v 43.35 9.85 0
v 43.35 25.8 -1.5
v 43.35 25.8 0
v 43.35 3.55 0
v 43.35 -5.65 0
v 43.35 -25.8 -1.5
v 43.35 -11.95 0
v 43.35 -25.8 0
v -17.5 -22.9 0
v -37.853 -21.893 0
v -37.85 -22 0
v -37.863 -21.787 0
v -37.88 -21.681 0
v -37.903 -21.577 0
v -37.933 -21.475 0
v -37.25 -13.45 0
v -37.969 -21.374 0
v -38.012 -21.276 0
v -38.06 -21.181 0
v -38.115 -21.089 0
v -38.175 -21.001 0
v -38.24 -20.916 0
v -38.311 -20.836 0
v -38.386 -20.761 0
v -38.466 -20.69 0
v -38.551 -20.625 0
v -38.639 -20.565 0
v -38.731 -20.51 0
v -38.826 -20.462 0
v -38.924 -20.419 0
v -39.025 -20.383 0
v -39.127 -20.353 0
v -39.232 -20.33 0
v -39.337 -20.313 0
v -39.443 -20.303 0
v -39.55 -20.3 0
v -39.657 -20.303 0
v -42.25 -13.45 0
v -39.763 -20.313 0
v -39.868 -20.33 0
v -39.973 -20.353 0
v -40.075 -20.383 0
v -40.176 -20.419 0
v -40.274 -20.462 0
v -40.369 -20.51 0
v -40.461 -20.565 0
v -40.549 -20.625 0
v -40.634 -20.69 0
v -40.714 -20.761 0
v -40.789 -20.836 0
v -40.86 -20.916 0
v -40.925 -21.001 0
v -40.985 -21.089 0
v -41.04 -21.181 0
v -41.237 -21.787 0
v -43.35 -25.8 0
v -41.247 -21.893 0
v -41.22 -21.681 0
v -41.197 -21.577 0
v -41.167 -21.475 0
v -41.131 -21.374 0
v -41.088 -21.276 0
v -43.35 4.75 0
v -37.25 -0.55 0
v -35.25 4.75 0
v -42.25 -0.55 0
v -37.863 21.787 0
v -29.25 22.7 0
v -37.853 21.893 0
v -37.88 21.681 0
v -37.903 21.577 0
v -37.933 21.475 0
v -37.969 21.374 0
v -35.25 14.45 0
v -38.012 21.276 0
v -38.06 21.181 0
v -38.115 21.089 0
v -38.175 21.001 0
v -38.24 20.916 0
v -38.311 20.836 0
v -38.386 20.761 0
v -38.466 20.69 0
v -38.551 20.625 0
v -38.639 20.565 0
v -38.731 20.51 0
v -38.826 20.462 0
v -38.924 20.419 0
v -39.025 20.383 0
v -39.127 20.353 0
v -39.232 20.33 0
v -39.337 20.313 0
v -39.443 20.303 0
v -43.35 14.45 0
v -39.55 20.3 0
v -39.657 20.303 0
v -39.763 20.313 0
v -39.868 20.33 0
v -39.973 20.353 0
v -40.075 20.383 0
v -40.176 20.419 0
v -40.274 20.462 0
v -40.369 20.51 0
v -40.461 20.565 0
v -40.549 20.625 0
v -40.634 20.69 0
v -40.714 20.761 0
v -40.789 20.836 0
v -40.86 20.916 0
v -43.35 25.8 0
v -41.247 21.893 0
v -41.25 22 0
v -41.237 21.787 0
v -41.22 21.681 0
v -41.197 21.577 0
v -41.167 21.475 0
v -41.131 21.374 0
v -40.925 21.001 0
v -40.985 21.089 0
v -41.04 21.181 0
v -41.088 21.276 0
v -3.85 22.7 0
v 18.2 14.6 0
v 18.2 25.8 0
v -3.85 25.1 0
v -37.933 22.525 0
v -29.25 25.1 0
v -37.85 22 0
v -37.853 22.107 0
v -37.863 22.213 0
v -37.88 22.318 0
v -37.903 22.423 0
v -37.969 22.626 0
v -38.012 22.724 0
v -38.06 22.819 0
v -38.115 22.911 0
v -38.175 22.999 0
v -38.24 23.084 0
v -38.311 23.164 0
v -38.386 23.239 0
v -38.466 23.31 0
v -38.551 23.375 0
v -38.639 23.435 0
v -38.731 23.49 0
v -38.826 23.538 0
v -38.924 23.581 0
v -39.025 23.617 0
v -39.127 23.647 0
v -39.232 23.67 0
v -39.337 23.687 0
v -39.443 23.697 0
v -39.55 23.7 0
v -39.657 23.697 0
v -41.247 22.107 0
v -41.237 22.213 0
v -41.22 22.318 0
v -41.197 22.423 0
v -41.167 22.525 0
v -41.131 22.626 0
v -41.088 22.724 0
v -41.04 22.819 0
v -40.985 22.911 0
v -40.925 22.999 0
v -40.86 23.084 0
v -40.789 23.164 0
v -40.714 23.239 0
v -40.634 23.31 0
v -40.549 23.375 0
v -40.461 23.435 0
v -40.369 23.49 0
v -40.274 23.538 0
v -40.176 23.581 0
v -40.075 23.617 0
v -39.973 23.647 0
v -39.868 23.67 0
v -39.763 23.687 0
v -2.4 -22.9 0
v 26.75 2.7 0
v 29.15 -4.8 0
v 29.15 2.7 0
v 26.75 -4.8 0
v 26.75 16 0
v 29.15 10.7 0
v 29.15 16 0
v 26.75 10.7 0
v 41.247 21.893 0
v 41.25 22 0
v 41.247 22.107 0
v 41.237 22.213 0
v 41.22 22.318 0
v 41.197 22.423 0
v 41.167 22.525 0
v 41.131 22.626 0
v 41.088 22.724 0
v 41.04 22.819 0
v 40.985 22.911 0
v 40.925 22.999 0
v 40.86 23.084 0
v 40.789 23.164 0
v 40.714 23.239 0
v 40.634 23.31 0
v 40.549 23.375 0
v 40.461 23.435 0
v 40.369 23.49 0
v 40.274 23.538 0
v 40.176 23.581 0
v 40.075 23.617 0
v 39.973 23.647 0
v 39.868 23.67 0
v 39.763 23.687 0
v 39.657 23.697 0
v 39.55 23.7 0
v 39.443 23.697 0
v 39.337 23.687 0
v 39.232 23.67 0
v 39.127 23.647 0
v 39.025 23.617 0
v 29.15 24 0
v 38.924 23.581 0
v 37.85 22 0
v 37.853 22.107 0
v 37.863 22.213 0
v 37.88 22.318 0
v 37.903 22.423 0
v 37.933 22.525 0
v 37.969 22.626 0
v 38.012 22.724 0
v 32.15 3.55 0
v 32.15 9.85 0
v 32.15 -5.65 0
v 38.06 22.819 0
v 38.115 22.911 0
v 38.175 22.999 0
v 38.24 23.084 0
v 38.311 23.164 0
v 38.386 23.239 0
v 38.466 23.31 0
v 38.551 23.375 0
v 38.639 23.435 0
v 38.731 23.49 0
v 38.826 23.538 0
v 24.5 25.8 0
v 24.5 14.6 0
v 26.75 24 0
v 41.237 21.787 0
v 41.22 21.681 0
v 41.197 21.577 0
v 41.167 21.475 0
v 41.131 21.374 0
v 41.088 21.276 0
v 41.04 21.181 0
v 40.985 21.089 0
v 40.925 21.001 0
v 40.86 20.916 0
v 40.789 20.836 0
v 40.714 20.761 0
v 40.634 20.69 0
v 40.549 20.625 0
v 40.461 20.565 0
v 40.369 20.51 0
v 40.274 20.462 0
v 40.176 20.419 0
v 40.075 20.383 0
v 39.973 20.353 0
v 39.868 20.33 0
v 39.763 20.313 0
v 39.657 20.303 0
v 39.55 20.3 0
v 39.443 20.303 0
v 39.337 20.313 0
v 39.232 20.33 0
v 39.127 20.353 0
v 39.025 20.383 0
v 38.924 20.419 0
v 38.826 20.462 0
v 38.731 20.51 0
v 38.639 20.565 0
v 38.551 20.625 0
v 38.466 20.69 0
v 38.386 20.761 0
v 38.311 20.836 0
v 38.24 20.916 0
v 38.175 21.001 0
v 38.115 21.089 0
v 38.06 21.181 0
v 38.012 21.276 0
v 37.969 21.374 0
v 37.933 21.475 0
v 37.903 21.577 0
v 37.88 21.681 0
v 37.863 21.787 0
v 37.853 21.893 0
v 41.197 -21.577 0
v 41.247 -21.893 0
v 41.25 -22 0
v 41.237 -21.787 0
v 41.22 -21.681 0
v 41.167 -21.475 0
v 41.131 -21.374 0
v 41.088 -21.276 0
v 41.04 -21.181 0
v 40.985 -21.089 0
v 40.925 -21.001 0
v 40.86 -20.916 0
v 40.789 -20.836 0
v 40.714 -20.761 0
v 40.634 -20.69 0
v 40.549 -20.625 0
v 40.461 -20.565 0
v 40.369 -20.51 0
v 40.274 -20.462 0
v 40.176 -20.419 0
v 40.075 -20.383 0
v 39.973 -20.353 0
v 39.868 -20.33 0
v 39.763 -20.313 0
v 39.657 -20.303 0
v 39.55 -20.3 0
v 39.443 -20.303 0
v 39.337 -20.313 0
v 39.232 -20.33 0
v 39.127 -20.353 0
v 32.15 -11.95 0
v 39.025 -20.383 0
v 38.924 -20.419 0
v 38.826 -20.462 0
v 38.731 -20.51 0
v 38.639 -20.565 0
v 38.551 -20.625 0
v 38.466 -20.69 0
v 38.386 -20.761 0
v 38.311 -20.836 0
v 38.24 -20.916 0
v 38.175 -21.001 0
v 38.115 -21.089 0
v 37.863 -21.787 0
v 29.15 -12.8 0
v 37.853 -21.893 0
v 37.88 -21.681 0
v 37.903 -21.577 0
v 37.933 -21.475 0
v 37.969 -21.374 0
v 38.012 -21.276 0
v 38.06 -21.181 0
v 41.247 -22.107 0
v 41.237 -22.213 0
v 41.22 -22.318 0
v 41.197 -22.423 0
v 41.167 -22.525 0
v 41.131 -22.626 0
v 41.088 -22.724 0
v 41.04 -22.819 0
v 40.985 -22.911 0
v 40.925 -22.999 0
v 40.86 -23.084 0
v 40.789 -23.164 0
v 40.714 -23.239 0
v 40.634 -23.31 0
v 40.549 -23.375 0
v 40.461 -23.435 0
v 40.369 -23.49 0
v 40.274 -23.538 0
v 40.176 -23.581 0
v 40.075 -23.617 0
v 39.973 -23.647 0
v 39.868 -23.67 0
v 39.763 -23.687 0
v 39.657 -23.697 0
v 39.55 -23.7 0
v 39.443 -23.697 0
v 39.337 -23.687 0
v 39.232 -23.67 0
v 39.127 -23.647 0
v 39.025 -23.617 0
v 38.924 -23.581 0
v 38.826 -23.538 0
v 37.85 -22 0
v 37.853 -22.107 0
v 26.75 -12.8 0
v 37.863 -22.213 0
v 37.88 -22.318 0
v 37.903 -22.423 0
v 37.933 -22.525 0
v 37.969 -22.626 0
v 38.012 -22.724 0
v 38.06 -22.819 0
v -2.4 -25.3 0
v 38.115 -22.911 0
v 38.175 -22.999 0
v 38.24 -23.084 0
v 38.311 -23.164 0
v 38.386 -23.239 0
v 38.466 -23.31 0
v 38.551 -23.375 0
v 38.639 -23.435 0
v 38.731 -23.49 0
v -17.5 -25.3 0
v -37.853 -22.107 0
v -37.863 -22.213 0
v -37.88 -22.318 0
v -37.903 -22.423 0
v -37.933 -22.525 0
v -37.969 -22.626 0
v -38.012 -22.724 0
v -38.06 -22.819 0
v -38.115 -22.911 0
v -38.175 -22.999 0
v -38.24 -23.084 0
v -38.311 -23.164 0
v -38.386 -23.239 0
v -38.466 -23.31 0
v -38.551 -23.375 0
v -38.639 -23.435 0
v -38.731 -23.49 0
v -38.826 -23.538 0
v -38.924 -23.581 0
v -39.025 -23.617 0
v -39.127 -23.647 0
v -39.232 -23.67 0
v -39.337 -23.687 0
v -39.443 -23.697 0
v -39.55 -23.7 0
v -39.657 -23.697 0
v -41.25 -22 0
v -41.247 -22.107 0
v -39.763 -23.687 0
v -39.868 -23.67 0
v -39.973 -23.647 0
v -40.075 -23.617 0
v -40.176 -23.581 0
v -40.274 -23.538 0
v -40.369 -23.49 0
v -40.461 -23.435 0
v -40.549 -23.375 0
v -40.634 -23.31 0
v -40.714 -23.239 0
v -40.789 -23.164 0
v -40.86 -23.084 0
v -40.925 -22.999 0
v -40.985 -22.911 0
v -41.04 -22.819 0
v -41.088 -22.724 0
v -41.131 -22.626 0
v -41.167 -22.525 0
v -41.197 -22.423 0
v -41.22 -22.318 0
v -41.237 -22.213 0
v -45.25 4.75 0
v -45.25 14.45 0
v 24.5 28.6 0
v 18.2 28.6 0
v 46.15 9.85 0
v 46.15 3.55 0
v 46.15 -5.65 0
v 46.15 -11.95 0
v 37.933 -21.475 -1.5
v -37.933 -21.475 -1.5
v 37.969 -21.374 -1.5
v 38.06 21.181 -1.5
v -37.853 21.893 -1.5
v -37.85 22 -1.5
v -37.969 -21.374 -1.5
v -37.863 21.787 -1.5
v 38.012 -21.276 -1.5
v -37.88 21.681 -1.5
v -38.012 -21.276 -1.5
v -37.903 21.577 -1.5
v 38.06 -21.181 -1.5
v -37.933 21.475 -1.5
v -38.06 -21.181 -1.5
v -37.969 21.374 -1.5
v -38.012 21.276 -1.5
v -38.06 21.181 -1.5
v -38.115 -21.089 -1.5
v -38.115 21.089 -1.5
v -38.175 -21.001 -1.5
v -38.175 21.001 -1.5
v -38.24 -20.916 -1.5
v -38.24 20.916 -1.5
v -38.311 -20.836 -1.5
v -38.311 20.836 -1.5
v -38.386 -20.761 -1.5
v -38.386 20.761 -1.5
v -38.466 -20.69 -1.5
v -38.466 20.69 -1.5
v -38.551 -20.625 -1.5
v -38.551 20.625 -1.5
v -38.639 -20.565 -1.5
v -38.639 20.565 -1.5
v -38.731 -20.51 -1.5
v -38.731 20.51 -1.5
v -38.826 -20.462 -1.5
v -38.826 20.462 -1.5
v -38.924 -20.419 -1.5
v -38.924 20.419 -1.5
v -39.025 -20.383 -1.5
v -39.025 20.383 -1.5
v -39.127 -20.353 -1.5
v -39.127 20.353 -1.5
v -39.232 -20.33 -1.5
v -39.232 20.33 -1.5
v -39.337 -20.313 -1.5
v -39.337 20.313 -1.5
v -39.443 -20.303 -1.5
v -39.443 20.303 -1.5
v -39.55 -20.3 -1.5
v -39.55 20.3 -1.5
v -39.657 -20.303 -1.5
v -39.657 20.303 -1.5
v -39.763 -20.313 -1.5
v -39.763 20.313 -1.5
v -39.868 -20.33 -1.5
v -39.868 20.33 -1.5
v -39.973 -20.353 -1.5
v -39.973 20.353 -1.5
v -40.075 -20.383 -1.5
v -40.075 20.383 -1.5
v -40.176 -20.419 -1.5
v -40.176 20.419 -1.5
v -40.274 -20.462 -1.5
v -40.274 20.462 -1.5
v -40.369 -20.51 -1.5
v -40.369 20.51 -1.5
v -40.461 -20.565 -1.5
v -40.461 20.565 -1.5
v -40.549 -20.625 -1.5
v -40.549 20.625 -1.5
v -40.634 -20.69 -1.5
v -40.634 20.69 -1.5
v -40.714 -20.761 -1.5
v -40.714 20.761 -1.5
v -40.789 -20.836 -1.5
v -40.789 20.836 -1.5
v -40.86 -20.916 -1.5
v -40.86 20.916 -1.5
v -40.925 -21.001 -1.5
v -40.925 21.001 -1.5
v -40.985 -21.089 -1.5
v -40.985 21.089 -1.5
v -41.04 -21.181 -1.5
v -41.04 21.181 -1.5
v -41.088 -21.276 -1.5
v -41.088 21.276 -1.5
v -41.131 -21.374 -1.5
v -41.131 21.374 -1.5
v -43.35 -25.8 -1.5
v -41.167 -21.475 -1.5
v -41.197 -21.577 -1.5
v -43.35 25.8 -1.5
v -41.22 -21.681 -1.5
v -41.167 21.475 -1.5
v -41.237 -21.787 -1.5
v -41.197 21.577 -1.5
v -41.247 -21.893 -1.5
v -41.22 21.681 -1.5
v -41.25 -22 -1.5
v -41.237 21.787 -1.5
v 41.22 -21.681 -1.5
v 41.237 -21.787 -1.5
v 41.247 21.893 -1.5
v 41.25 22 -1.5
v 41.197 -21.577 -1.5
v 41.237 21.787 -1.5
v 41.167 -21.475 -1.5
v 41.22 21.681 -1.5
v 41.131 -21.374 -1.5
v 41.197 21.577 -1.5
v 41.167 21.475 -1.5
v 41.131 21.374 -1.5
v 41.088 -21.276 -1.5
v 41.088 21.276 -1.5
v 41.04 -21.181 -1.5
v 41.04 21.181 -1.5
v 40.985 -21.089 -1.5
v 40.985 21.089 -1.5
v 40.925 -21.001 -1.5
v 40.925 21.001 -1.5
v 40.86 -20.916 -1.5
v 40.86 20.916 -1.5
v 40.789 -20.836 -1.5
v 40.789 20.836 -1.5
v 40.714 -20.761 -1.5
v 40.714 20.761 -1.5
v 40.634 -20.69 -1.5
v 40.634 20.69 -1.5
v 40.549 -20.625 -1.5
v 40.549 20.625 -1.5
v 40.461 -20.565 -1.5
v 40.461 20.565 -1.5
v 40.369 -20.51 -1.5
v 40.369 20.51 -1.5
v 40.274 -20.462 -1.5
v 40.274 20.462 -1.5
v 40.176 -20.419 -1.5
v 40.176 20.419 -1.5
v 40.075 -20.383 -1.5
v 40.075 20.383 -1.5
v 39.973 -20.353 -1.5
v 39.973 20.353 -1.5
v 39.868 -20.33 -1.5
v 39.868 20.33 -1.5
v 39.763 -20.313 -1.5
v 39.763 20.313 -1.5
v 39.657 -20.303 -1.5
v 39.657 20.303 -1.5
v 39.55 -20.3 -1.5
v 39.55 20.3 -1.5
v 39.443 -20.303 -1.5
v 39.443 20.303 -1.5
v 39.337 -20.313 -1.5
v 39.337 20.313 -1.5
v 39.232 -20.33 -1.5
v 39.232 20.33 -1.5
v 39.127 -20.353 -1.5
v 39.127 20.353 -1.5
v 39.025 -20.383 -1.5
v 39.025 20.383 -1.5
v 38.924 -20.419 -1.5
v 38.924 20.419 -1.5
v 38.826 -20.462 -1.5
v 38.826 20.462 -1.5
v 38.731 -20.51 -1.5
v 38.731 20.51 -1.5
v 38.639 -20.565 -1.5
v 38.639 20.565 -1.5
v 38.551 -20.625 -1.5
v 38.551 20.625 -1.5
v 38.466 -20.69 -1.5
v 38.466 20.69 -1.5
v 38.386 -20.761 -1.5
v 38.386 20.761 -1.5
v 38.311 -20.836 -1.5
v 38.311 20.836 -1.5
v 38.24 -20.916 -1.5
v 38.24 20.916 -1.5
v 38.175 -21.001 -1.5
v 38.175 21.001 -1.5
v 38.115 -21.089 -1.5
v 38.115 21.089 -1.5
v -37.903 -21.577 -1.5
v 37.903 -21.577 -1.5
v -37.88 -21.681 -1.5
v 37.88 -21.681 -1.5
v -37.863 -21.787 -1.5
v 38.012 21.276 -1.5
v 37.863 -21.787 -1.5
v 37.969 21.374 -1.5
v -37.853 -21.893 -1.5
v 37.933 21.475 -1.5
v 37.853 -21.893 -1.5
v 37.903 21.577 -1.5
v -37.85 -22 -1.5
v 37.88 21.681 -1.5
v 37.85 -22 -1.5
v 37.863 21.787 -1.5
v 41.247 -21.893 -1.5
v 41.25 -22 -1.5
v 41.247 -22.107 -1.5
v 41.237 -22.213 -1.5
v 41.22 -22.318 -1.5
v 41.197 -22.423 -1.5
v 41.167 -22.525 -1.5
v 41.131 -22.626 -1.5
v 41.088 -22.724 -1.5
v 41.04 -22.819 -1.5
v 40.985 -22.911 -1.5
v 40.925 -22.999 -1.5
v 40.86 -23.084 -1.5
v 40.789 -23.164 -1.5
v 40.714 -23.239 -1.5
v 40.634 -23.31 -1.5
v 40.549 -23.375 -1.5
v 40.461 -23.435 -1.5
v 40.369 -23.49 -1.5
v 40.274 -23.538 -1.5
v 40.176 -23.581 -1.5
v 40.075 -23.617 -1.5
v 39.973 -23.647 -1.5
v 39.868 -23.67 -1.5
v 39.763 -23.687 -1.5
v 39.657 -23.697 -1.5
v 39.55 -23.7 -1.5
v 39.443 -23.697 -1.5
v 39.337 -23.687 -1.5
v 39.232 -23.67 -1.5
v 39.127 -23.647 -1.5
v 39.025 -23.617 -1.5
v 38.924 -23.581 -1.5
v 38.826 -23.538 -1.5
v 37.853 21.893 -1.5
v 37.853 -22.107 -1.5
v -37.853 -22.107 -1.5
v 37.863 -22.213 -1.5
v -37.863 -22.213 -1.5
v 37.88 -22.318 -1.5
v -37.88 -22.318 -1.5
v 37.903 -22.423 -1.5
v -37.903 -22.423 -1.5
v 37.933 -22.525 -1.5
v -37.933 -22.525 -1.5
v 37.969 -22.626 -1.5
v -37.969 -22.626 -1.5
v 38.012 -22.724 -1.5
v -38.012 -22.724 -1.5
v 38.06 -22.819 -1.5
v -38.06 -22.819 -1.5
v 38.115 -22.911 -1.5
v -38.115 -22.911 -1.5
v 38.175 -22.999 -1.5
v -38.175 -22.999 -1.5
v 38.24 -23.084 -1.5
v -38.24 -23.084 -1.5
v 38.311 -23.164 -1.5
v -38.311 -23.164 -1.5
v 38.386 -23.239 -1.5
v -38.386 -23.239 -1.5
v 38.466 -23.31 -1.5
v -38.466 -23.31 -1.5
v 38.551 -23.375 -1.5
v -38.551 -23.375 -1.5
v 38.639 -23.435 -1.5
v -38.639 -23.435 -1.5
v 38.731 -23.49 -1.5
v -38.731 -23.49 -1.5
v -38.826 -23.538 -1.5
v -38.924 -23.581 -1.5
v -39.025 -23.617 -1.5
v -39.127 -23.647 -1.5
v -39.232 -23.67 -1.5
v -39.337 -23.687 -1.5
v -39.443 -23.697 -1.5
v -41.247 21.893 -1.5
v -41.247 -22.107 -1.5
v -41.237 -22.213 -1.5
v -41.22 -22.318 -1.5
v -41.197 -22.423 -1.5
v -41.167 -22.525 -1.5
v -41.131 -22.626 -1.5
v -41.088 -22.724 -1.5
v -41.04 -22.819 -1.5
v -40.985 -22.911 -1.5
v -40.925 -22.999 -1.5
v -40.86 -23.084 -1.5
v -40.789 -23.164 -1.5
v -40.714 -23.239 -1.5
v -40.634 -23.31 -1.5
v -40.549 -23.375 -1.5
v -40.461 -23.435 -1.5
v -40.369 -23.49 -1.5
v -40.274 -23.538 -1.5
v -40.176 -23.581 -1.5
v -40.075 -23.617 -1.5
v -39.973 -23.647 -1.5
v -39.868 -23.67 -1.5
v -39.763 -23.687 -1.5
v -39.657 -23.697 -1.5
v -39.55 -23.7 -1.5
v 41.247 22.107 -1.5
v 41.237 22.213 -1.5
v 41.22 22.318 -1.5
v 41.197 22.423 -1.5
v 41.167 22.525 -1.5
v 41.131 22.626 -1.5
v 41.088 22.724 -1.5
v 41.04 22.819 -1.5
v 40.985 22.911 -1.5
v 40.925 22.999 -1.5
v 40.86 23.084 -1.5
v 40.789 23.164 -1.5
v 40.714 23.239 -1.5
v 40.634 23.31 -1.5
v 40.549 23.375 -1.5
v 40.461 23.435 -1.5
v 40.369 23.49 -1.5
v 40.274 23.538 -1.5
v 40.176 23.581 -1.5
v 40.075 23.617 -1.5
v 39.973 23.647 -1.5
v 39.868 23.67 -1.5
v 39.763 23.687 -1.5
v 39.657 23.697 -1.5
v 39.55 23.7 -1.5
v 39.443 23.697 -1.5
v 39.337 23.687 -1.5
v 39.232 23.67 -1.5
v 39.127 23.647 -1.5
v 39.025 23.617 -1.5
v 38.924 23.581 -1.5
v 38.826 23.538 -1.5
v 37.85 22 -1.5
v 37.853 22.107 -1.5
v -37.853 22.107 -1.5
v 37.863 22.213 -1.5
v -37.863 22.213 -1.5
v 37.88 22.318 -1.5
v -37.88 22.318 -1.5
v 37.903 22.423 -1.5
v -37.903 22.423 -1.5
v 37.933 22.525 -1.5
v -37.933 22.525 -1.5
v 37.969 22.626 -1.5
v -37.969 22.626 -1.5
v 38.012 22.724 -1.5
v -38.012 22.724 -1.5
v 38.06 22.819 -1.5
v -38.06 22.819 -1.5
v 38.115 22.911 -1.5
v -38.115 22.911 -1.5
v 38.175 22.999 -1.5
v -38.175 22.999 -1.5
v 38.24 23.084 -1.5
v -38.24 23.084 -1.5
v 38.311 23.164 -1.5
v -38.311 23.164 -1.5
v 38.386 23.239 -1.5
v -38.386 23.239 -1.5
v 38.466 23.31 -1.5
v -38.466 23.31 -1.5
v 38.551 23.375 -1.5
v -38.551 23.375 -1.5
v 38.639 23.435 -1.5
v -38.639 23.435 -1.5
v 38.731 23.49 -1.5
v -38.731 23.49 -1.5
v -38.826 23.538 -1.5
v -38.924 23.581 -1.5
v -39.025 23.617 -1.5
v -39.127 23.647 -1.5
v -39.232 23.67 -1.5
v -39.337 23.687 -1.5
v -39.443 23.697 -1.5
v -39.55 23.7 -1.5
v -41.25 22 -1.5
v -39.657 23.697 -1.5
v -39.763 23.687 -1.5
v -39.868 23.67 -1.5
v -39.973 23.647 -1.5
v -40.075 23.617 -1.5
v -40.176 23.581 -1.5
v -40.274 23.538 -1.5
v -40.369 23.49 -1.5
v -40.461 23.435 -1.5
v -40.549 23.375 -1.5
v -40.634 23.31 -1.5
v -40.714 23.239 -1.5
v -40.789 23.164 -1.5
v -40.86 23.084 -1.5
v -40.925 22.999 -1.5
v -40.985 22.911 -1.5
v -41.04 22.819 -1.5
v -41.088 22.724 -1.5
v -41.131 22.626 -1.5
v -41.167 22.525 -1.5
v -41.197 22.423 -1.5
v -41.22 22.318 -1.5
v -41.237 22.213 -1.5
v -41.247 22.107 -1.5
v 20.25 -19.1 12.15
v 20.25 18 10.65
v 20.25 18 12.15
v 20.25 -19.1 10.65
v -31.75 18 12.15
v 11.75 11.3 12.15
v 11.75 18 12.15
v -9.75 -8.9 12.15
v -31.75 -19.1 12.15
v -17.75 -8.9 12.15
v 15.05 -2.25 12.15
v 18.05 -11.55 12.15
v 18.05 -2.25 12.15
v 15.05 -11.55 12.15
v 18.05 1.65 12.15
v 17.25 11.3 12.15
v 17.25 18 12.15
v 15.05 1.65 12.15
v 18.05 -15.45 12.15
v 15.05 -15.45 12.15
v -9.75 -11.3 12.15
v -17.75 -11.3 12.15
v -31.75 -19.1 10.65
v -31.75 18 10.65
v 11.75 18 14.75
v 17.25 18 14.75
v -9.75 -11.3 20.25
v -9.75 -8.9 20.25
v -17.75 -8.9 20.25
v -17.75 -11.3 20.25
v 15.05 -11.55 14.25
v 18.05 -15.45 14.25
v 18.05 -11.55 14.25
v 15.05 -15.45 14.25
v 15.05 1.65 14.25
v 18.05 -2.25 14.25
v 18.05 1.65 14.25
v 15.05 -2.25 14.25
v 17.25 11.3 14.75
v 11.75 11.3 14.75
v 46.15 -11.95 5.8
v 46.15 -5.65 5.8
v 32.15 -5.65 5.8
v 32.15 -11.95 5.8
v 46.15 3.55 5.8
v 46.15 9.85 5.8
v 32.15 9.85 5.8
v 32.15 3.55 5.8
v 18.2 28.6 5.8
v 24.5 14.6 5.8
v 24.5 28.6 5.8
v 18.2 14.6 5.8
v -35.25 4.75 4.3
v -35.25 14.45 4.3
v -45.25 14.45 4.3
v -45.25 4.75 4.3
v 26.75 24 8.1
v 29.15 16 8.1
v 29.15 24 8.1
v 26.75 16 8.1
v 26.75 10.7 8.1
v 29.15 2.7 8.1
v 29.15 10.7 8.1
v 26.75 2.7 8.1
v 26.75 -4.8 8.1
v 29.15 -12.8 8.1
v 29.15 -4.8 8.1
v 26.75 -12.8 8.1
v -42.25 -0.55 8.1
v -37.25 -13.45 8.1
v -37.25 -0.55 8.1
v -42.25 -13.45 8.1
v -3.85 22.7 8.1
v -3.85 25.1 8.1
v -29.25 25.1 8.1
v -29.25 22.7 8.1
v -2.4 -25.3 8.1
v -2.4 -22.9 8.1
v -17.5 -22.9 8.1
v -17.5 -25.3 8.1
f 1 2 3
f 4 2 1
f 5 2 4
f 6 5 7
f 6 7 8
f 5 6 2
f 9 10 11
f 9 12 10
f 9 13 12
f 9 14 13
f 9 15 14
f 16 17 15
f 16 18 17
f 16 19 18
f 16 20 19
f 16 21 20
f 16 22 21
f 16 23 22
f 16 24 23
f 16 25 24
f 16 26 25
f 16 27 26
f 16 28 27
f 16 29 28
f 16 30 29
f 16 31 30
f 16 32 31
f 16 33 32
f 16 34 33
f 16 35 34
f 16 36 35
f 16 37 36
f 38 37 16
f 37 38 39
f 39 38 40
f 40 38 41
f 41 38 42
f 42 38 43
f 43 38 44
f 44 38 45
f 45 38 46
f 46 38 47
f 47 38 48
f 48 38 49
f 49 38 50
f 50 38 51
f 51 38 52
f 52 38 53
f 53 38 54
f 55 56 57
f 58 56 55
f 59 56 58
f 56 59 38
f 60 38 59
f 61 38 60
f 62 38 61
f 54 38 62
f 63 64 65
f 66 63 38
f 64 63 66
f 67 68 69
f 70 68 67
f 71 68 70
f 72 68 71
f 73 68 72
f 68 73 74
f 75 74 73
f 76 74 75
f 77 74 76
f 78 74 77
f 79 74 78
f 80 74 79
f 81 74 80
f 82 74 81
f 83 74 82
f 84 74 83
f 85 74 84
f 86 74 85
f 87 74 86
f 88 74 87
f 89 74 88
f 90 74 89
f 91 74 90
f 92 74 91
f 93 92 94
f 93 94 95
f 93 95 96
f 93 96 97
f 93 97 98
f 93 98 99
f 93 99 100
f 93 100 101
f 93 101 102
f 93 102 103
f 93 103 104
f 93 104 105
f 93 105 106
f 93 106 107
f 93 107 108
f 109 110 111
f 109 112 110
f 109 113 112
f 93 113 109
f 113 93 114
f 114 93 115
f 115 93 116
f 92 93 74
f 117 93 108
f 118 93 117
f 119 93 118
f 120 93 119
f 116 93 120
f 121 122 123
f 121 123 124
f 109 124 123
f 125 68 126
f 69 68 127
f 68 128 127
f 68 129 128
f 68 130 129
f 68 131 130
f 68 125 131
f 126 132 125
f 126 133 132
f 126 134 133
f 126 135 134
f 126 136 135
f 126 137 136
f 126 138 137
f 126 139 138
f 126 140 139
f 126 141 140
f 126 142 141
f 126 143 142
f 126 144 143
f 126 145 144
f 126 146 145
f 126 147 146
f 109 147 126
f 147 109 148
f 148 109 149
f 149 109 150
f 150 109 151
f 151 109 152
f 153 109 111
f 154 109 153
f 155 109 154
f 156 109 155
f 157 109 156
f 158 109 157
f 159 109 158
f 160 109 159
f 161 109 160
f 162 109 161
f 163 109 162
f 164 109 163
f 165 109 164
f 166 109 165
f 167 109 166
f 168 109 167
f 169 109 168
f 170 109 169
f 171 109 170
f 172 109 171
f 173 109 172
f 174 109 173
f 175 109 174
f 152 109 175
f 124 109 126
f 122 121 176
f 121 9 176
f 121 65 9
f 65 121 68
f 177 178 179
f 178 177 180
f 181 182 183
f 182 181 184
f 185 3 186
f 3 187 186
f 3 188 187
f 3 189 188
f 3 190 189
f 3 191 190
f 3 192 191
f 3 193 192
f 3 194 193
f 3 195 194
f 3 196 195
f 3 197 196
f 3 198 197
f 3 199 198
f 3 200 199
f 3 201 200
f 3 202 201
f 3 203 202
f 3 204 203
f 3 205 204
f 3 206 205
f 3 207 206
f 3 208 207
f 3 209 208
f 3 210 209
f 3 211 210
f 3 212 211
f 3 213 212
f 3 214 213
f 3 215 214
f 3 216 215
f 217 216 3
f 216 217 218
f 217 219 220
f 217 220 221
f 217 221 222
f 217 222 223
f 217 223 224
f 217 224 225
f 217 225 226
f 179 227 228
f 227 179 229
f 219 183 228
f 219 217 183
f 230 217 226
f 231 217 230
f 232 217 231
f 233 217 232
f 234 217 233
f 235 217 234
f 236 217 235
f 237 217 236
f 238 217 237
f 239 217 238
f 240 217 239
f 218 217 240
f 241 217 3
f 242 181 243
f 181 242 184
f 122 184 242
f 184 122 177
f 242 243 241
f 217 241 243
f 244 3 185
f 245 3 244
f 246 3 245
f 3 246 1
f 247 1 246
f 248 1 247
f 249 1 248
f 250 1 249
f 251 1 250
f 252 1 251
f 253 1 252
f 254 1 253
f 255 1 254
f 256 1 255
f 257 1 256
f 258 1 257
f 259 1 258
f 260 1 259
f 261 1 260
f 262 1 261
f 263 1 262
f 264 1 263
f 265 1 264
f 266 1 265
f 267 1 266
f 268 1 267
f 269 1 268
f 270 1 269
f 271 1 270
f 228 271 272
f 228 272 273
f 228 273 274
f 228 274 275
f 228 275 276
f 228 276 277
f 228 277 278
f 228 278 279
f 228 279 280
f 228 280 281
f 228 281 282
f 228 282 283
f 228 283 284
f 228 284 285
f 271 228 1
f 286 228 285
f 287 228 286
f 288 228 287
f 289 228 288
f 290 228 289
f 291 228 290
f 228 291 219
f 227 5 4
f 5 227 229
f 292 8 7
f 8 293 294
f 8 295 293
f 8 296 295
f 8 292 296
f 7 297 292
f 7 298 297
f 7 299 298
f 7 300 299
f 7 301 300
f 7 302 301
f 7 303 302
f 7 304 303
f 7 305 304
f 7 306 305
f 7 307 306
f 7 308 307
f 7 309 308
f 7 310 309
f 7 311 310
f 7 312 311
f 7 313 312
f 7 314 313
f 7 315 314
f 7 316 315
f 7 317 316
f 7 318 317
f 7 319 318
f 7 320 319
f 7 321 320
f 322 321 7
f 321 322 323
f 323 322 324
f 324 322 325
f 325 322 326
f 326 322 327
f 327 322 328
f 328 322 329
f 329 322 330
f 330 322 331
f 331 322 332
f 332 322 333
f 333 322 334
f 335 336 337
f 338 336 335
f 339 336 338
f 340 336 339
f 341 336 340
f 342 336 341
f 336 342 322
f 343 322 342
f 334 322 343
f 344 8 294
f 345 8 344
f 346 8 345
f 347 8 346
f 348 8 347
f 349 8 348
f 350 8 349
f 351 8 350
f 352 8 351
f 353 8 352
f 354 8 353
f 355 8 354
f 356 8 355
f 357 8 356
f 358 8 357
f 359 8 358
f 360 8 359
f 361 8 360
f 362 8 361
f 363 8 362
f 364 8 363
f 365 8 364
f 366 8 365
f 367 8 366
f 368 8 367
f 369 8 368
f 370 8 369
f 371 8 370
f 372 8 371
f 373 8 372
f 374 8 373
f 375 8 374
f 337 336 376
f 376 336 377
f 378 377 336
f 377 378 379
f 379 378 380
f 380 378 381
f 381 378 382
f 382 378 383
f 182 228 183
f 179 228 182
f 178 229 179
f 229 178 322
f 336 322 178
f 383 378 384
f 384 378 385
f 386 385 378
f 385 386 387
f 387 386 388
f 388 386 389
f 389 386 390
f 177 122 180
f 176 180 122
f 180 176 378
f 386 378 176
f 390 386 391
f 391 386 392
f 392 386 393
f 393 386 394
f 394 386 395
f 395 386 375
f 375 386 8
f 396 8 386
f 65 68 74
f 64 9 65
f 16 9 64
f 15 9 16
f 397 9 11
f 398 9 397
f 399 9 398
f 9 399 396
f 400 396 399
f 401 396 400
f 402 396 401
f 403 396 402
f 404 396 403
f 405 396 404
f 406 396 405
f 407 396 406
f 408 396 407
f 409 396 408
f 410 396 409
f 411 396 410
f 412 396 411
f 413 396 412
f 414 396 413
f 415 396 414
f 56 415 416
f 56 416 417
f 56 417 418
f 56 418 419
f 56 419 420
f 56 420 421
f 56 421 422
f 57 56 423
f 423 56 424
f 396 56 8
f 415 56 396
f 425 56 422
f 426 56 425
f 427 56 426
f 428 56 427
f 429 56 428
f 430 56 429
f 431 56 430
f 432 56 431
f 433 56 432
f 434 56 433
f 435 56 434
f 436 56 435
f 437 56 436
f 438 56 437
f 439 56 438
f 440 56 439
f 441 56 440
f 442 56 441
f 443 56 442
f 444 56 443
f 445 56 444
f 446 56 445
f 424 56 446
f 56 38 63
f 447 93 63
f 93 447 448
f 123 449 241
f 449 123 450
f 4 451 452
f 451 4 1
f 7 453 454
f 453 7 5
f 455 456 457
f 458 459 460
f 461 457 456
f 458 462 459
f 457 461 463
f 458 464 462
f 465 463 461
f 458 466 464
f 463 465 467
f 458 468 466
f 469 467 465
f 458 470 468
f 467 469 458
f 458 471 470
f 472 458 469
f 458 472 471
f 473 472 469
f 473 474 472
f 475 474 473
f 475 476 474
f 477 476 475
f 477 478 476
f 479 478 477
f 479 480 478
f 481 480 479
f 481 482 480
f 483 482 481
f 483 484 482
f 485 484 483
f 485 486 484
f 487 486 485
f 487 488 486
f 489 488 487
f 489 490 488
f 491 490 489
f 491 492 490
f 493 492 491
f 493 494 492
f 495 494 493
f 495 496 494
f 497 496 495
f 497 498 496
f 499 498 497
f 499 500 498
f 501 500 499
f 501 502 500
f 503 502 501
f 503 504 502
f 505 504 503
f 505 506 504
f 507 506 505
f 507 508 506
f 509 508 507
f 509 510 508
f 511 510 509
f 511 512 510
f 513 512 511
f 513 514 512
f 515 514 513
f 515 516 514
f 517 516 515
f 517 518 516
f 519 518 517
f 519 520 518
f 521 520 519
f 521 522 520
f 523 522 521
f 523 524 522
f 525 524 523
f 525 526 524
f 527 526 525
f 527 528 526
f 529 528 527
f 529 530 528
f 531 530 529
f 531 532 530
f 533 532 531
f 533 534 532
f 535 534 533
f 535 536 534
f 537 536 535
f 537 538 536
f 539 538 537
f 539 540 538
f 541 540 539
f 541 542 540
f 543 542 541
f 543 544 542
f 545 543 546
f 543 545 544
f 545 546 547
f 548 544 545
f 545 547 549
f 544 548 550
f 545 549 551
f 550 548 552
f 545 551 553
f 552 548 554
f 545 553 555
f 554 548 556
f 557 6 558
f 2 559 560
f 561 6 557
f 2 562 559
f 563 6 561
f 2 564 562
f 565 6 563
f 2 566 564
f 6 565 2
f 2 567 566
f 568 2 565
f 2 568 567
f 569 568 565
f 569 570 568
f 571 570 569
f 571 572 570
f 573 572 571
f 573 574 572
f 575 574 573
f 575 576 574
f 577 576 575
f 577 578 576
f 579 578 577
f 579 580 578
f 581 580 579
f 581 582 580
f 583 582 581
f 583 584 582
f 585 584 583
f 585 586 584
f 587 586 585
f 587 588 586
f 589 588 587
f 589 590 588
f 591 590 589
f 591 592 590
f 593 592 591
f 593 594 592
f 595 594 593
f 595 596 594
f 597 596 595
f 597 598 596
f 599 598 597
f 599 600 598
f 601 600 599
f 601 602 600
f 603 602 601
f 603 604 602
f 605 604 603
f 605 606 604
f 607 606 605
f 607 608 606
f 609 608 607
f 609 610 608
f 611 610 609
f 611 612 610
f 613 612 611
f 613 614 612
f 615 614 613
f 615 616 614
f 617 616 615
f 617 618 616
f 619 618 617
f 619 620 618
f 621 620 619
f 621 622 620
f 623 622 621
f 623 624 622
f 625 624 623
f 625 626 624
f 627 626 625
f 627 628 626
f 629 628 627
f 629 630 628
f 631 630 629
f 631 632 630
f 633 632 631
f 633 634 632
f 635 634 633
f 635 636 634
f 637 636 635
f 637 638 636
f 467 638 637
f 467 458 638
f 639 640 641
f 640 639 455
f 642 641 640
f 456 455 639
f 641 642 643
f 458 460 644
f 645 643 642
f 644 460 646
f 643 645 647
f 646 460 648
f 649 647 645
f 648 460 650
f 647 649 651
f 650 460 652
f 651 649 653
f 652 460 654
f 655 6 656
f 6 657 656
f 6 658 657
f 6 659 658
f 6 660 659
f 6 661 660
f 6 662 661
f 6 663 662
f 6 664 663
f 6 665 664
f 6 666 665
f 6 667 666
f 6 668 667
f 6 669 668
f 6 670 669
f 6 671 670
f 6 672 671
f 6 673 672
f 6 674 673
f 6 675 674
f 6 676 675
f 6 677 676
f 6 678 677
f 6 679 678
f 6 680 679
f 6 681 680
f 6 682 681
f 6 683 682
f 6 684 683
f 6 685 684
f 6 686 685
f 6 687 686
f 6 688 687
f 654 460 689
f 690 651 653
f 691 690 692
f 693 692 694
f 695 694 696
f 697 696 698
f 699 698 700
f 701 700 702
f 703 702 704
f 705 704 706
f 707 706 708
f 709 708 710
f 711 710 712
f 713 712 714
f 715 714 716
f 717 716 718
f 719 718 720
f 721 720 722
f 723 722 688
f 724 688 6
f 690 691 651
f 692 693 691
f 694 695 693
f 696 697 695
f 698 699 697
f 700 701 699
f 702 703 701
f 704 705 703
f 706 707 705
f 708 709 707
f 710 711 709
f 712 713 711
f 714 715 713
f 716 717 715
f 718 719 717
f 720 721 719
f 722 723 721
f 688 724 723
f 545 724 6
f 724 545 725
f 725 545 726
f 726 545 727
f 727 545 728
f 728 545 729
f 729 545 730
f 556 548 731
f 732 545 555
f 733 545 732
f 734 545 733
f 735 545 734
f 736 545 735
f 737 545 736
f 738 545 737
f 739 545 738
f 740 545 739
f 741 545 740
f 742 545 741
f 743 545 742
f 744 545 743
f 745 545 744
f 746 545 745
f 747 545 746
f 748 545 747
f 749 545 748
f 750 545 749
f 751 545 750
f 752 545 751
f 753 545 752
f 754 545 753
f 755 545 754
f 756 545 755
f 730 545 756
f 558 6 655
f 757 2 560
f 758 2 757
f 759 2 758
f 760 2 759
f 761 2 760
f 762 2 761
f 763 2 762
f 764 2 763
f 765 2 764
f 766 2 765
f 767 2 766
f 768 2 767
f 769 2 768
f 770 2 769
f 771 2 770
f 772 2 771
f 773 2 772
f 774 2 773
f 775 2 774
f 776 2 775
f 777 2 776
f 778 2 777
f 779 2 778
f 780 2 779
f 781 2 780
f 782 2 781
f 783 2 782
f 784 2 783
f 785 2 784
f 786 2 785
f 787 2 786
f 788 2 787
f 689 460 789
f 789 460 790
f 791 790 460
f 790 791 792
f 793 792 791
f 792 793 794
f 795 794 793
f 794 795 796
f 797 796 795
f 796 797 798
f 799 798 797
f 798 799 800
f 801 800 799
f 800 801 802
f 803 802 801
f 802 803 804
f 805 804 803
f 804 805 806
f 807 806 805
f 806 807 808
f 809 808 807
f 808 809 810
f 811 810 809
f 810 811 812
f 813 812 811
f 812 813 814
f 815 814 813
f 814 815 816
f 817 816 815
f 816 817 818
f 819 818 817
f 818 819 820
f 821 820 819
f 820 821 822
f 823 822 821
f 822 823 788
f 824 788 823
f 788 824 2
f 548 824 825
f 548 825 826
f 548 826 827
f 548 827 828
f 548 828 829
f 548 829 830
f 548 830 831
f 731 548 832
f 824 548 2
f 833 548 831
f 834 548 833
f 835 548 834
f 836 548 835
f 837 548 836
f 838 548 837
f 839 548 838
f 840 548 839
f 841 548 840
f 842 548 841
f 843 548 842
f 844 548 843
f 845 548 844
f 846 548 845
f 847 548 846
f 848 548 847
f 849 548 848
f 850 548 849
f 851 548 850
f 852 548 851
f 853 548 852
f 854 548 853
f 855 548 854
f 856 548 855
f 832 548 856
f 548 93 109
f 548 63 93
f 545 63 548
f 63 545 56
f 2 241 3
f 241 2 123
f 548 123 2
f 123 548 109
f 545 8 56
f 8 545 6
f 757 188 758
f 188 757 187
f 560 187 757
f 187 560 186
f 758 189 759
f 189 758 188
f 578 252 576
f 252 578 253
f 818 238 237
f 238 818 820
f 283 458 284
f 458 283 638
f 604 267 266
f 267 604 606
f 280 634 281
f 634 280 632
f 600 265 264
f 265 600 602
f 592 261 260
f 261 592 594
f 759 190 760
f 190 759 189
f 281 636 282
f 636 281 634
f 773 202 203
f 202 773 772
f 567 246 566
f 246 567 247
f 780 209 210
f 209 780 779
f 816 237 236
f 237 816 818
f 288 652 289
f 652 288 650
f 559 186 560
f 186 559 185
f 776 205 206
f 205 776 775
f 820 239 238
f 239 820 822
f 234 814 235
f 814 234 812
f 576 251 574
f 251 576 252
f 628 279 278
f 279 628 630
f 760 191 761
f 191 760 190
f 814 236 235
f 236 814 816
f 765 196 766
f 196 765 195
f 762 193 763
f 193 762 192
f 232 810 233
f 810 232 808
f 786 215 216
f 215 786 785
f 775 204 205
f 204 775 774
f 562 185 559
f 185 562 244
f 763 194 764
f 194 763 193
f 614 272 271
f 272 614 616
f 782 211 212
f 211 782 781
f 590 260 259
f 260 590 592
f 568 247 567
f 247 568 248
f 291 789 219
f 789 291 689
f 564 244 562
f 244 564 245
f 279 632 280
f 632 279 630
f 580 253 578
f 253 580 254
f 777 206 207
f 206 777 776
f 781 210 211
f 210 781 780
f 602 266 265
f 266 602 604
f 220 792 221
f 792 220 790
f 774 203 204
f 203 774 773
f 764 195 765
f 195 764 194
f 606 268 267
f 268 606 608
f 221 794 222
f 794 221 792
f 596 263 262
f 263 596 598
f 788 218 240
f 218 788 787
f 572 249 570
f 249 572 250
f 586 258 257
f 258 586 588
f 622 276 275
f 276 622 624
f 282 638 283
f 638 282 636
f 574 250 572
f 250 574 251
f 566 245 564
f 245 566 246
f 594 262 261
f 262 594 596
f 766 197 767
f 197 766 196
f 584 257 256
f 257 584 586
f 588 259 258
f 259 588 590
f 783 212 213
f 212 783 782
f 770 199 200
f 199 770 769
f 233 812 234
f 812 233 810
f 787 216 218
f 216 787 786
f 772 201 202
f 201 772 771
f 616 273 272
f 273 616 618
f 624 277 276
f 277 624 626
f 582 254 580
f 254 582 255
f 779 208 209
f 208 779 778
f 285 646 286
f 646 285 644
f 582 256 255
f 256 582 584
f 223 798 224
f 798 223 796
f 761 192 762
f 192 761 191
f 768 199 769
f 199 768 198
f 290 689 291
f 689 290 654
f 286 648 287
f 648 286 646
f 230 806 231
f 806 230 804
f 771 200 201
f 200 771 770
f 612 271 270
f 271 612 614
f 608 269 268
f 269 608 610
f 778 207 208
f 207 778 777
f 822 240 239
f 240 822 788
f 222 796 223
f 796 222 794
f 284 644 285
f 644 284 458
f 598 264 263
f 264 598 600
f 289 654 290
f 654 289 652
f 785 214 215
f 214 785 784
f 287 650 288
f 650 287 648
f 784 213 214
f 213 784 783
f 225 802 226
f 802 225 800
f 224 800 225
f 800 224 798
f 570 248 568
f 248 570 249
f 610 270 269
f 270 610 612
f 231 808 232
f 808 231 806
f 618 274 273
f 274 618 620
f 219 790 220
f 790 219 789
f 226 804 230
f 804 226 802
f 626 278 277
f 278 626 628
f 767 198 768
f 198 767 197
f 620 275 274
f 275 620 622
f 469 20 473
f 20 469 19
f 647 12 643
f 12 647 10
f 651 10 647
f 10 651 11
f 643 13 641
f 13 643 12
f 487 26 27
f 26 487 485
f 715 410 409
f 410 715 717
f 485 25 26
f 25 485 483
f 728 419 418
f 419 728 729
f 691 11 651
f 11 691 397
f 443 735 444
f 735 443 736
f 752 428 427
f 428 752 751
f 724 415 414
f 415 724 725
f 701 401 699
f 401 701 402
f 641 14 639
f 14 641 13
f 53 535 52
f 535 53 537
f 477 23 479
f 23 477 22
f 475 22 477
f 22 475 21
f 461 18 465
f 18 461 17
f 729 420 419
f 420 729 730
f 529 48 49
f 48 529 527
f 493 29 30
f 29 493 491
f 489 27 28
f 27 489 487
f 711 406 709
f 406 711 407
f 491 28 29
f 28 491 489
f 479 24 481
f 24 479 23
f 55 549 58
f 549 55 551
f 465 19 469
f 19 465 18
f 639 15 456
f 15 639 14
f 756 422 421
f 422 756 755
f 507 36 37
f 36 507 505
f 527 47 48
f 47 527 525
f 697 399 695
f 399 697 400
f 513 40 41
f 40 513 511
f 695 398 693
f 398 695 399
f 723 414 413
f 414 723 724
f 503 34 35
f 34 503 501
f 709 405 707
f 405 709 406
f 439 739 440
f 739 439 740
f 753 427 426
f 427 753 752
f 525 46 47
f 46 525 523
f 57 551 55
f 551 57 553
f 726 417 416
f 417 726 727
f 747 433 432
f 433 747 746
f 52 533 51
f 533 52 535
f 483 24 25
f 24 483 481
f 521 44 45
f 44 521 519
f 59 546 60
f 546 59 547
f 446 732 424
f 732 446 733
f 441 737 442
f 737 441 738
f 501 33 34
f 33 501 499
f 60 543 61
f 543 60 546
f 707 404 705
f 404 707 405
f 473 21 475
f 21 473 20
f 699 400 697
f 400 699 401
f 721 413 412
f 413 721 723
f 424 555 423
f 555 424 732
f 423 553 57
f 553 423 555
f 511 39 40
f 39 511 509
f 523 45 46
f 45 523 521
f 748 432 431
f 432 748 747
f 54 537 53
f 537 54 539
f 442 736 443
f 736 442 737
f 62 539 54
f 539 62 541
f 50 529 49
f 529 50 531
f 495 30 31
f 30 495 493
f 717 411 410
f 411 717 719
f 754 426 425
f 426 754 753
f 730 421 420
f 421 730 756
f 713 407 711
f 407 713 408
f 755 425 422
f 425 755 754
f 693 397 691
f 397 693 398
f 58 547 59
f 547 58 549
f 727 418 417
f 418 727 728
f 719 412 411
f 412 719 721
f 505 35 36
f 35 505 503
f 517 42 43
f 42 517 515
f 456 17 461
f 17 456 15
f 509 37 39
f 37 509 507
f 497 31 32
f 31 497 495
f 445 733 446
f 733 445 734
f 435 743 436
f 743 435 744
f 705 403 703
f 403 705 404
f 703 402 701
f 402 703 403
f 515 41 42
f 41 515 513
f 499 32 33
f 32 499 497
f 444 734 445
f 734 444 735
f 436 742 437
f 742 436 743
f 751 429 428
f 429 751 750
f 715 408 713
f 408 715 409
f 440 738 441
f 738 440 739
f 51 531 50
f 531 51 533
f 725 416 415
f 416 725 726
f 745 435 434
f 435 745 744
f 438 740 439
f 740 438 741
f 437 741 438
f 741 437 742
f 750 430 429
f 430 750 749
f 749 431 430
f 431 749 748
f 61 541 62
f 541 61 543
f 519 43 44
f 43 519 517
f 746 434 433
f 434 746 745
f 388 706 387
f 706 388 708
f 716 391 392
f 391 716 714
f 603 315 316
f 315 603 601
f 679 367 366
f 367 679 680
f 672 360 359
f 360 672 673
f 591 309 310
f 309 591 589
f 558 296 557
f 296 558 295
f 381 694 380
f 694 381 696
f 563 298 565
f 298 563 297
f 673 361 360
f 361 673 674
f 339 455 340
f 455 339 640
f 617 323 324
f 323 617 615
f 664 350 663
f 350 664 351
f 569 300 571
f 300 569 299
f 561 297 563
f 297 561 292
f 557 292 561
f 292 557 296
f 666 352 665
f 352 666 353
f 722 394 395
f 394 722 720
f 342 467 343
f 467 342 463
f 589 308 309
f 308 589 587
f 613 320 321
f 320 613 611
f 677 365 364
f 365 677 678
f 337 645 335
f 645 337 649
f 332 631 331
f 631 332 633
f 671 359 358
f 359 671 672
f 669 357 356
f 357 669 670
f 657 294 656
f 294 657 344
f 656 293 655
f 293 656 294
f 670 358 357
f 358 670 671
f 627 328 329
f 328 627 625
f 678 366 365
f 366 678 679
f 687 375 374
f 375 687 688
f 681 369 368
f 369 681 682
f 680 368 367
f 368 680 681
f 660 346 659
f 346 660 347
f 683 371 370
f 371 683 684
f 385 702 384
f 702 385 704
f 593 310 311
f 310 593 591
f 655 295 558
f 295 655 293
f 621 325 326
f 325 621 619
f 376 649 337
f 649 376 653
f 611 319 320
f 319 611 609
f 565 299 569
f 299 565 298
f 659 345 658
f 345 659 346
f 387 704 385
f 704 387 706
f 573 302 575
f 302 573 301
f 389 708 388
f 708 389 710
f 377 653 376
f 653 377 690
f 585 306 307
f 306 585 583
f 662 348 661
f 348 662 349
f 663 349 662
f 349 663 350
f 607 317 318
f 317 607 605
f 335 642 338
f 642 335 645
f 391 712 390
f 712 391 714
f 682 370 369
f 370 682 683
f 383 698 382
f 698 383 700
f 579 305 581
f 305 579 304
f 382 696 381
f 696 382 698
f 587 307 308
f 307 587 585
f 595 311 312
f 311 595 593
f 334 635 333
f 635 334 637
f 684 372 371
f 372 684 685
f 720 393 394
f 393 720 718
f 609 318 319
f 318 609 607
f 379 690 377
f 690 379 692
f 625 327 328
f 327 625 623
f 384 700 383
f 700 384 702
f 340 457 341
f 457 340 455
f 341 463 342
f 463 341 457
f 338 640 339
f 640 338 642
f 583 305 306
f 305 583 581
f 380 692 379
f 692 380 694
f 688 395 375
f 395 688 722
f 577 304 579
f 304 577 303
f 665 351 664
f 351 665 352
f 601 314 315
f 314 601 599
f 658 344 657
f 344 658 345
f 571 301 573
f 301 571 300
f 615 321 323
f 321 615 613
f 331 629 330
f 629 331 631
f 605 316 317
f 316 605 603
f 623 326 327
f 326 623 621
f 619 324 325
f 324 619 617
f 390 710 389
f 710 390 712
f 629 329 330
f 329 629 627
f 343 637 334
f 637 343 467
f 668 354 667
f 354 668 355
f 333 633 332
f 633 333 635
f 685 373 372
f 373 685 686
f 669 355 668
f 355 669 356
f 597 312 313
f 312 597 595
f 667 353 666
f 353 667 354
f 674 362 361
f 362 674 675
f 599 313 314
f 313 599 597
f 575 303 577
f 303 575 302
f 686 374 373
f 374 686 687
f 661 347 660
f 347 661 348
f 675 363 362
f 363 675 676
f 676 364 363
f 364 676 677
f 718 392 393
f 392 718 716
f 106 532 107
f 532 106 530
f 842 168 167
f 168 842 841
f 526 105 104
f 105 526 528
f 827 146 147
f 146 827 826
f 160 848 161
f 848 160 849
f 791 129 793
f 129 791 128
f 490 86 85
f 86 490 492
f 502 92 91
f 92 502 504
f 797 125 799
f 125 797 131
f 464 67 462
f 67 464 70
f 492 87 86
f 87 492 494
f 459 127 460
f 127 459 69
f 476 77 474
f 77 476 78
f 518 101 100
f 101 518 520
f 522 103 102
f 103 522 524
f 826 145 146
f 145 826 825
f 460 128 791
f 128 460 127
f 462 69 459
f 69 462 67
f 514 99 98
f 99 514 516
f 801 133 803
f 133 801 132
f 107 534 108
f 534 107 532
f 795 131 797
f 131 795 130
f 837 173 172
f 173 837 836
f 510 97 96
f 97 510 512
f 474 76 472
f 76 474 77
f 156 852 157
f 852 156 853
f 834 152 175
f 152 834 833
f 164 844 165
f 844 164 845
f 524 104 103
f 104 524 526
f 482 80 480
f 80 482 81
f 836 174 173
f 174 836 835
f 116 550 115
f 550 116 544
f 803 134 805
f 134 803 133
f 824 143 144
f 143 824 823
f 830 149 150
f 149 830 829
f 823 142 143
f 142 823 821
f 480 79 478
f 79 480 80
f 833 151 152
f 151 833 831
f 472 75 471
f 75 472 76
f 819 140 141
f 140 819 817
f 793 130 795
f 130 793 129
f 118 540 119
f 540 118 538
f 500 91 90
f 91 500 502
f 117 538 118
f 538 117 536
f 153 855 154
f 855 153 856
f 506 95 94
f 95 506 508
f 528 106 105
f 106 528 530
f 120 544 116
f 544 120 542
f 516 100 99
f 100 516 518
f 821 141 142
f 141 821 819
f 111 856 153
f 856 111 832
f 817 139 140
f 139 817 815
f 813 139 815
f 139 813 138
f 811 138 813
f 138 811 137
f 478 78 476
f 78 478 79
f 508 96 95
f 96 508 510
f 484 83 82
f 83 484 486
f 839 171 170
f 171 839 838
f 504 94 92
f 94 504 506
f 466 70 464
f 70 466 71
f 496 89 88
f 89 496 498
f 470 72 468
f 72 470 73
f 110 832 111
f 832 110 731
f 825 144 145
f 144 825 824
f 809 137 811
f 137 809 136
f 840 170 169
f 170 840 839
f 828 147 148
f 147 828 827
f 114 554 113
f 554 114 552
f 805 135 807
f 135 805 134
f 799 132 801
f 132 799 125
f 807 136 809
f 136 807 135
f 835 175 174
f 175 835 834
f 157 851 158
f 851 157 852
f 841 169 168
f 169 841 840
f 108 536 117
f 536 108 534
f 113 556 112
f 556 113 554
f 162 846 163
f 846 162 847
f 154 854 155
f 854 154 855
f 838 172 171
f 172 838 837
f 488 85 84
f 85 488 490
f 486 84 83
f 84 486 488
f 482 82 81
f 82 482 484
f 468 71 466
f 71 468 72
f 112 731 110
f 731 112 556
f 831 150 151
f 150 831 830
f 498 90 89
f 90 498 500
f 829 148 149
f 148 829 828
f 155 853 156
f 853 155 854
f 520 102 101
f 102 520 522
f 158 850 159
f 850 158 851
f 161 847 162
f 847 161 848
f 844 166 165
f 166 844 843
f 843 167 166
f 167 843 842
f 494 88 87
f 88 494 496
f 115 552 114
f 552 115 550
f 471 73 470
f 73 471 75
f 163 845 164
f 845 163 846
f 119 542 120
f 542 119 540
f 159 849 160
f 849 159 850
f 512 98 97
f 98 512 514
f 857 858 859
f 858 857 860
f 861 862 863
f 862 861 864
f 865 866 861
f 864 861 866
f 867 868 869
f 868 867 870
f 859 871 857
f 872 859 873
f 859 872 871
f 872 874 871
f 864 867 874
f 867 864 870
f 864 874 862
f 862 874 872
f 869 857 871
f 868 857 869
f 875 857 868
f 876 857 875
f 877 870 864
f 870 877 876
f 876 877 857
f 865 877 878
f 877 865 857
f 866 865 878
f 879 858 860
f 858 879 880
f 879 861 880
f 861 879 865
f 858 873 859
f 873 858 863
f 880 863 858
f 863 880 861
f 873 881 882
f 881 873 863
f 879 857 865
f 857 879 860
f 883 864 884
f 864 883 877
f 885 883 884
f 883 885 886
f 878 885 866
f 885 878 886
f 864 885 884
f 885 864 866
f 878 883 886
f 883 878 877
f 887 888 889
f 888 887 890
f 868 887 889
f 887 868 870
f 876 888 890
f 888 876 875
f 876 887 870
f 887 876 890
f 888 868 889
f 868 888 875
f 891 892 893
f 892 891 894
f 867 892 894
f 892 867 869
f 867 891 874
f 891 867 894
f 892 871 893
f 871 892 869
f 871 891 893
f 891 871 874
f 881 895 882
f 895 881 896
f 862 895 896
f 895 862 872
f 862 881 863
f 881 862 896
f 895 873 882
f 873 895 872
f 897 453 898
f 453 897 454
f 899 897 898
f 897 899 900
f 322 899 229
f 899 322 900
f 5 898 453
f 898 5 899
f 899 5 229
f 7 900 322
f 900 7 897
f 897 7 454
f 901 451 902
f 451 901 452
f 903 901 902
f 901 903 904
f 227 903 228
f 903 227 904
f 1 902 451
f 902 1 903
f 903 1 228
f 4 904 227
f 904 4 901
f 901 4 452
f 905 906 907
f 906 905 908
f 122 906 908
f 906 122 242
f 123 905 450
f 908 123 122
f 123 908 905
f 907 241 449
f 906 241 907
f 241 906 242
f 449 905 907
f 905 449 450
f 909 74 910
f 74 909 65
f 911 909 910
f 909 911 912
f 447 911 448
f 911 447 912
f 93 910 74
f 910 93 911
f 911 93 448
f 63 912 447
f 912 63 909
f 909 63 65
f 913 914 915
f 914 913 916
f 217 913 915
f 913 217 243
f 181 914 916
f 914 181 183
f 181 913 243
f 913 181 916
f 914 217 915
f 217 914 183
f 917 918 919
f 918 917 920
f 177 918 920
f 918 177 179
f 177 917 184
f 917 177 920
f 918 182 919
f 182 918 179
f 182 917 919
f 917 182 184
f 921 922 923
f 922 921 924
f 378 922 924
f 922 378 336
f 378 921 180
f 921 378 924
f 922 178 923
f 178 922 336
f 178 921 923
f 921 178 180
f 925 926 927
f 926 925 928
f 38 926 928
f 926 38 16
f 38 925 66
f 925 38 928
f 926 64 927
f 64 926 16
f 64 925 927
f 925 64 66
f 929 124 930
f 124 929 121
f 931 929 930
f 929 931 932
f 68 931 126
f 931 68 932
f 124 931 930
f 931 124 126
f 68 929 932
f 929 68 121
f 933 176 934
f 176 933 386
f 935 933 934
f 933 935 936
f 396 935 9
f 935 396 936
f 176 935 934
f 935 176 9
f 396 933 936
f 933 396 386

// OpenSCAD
// file: common.scad
holes_distance_to_border_pcb = 3.8;
holes_diameter = 3.4;
pcb_size = [86.7, 51.6, 1.5 ];
margin_xy = 4;
wall_width = 2;
epsilon = 0.35;

holes_distance_to_border_case_bottom = holes_distance_to_border_pcb + margin_xy;

bottom_box_internal_size = [pcb_size[0] + margin_xy*2,
                            pcb_size[1] + margin_xy*2,
                            6];
                                      
top_box_internal_size = [bottom_box_internal_size[0],
                         bottom_box_internal_size[1],
                         23];
// main file
include <common.scad>;

module mini_momentary_switch(control_components_margin)
{
     size = [3.9, 3, 2.1] + control_components_margin;
     translate([0,
               0,
               size[2]/2])
    cube(size,center=true);
}

module mini_dip_switch_4(control_components_margin)
{
    size = [6.7, 5.5, 2.6] + control_components_margin;
    translate([-size[0]/2,
               size[1]/2,
               size[2]/2])
    cube(size,center=true);
}
    
module header_1x3_pin(control_components_margin)
{
     size = [8, 2.4, 8.1] + control_components_margin;
     translate([0,
               0,
               size[2]/2])
     cube(size,center=true);   
}
module header_2x5_pin(control_components_margin)
{
    size = [12.9, 5, 8.1] + control_components_margin;
    translate([0,
               0,
               size[2]/2])
    cube(size,center=true);
}
module header_1x10_pin(control_components_margin)
{
    size = [25.4, 2.4, 8.1] + control_components_margin;
    translate([0,
               0,
               size[2]/2])
    cube(size,center=true);
}

module header_1x6_pin(control_components_margin)
{
    size = [15.1, 2.4, 8.1] + control_components_margin;
    translate([0,
               0,
               size[2]/2])
    cube(size,center=true);
}
module daughter_pcb(pcb_daugther_size, control_components_margin)
{
    $fn=100;
    union()
    {
        color("springgreen",1)
        translate([pcb_daugther_size[0]/2,
                   -pcb_daugther_size[1]/2,
                   -pcb_daugther_size[2]/2])
        cube(pcb_daugther_size, center=true);
    
        // jp2
        color("black",1)
        translate([18,
                   9 - pcb_daugther_size[1],
                   ])
        header_1x3_pin(control_components_margin);
        
        
        // btn1
        color("grey", 1)
        translate([pcb_daugther_size[0] - 3.7,
                   5.6 - pcb_daugther_size[1],
                   0])
        rotate([0,0,90])
        mini_momentary_switch(control_components_margin);
        
        // btn2
        color("grey", 1)
        translate([pcb_daugther_size[0] - 3.7,
                   18.8 - pcb_daugther_size[1],
                   0])
        rotate([0,0,90])
        mini_momentary_switch(control_components_margin);
        
        
        // sw1
        translate([pcb_daugther_size[0]-3,
                   0,
                   0])
        rotate([0,0,90])
        mini_dip_switch_4(control_components_margin);
    }
}


module pcb(control_components_margin) 
{   
    $fn=100;
    union()
    {
        translate([0,0,-pcb_size[2]/2])
        difference(){
        // main PCB
        color("green",1)
        cube(pcb_size,center=true);
        
        // 4 corner holes
        translate([pcb_size[0]/2 - holes_distance_to_border_pcb,
                   pcb_size[1]/2 - holes_distance_to_border_pcb,
                   0])
        cylinder(h=pcb_size[2], d=holes_diameter, center=true);
        
        translate([holes_distance_to_border_pcb - pcb_size[0]/2,
                   holes_distance_to_border_pcb - pcb_size[1]/2,
                   0])
        cylinder(h=pcb_size[2], d=holes_diameter, center=true);
        
        translate([pcb_size[0]/2 - holes_distance_to_border_pcb,
                   holes_distance_to_border_pcb - pcb_size[1]/2,
                   0])
        cylinder(h=pcb_size[2], d=holes_diameter, center=true);
        
        translate([holes_distance_to_border_pcb - pcb_size[0]/2,
                   pcb_size[1]/2 - holes_distance_to_border_pcb,
                   0])
        cylinder(h=pcb_size[2], d=holes_diameter, center=true);
    }
    
    // add jacks
    jack_size = [14, 6.3, 5.8] + [control_components_margin[2], control_components_margin[0], control_components_margin[1]];
    jack_inner_length = 11.2;
        
    hpout01_jack_distance_to_border = 17;
    hpout23_jack_distance_to_border = 19.1;
    linein01_jack_distance_to_border = 22;
    
    // HP out 0/1
    color("black", 1)
    translate([pcb_size[0]/2 - jack_size[0]/2 + (jack_size[0]-jack_inner_length),
    hpout01_jack_distance_to_border - pcb_size[1]/2,
    jack_size[2]/2])
    cube(jack_size, center=true);
    
    // HP out 2/3
    color("yellow", 1)
    translate([pcb_size[0]/2 - jack_size[0]/2 + (jack_size[0]-jack_inner_length),
    pcb_size[1]/2 - hpout23_jack_distance_to_border,
    jack_size[2]/2])
    cube(jack_size, center=true);
    
    // line in 0/1
    color("hotpink", 1)
    translate([pcb_size[0]/2 - linein01_jack_distance_to_border,
        pcb_size[1]/2 - jack_size[0]/2 + (jack_size[0]-jack_inner_length),
        jack_size[2]/2])
    rotate([0,0,90])
    cube(jack_size, center=true);
   
   // USB-C connector
    usbc_distance_to_border = 16.2;
    usbc_size = [10, 9.7, 4.3] + [control_components_margin[2], control_components_margin[0], control_components_margin[1]];
    
    color("lightgray", 1)
    translate([(usbc_distance_to_border-usbc_size[0] - pcb_size[0])/2,
               pcb_size[1]/2 - usbc_distance_to_border,
              usbc_size[2]/2])
    cube(usbc_size, center=true);
    
    // headers
    j41_3p_center_distance_to_border = [15.4, 5.8];
    j61_3p_center_distance_to_border = [15.4, hpout23_jack_distance_to_border];
    j51_3p_center_distance_to_border = [15.4, pcb_size[1] - hpout01_jack_distance_to_border];
    
    // j41
    color("hotpink", 1)
    translate([pcb_size[0]/2 - j41_3p_center_distance_to_border[0],
               pcb_size[1]/2 - j41_3p_center_distance_to_border[1],
               0])
    rotate([0,0,90])
    header_1x3_pin(control_components_margin);
   
    // j61
    color("yellow", 1)
    translate([pcb_size[0]/2 - j61_3p_center_distance_to_border[0],
               pcb_size[1]/2 - j61_3p_center_distance_to_border[1],
               0])
    rotate([0,0,90])
    header_1x3_pin(control_components_margin);
    
    // j51
    color("black", 1)
    translate([pcb_size[0]/2 - j51_3p_center_distance_to_border[0],
               pcb_size[1]/2 - j51_3p_center_distance_to_border[1],
               0])
    rotate([0,0,90])
    header_1x3_pin(control_components_margin);
    
    // j1
    j1_center_distance_to_border = [32.8,3.6];
    color("black",1)
    translate([j1_center_distance_to_border[1]-pcb_size[0]/2,
               pcb_size[1]/2 - j1_center_distance_to_border[0],
               0])
    rotate([0,0,90])
    header_2x5_pin(control_components_margin);
    
    // j2
    j2_center_distance_to_border = [26.8, 1.9];
    color("black",1)
    translate([j2_center_distance_to_border[0] - pcb_size[0]/2,
               pcb_size[1]/2 - j2_center_distance_to_border[1],
               0])
    header_1x10_pin(control_components_margin);
    
    // j3
    j3_center_distance_to_border = [33.4, 1.7];
    color("black",1)
    translate([j3_center_distance_to_border[0] - pcb_size[0]/2,
               j3_center_distance_to_border[1] - pcb_size[1]/2,
               0])
    header_1x6_pin(control_components_margin);
    
    pcb_daugther_size = [52 , 37.1, 1.5];
    pcb_daugther_distance_to_border = [11.6, 7.8, 10.65];
    translate([pcb_daugther_distance_to_border[0] - pcb_size[0]/2,
               pcb_size[1]/2 - pcb_daugther_distance_to_border[1],
               pcb_daugther_distance_to_border[2] + pcb_size[2]])
    daughter_pcb(pcb_daugther_size,control_components_margin);
}
}

pcb([0,0,0]);
